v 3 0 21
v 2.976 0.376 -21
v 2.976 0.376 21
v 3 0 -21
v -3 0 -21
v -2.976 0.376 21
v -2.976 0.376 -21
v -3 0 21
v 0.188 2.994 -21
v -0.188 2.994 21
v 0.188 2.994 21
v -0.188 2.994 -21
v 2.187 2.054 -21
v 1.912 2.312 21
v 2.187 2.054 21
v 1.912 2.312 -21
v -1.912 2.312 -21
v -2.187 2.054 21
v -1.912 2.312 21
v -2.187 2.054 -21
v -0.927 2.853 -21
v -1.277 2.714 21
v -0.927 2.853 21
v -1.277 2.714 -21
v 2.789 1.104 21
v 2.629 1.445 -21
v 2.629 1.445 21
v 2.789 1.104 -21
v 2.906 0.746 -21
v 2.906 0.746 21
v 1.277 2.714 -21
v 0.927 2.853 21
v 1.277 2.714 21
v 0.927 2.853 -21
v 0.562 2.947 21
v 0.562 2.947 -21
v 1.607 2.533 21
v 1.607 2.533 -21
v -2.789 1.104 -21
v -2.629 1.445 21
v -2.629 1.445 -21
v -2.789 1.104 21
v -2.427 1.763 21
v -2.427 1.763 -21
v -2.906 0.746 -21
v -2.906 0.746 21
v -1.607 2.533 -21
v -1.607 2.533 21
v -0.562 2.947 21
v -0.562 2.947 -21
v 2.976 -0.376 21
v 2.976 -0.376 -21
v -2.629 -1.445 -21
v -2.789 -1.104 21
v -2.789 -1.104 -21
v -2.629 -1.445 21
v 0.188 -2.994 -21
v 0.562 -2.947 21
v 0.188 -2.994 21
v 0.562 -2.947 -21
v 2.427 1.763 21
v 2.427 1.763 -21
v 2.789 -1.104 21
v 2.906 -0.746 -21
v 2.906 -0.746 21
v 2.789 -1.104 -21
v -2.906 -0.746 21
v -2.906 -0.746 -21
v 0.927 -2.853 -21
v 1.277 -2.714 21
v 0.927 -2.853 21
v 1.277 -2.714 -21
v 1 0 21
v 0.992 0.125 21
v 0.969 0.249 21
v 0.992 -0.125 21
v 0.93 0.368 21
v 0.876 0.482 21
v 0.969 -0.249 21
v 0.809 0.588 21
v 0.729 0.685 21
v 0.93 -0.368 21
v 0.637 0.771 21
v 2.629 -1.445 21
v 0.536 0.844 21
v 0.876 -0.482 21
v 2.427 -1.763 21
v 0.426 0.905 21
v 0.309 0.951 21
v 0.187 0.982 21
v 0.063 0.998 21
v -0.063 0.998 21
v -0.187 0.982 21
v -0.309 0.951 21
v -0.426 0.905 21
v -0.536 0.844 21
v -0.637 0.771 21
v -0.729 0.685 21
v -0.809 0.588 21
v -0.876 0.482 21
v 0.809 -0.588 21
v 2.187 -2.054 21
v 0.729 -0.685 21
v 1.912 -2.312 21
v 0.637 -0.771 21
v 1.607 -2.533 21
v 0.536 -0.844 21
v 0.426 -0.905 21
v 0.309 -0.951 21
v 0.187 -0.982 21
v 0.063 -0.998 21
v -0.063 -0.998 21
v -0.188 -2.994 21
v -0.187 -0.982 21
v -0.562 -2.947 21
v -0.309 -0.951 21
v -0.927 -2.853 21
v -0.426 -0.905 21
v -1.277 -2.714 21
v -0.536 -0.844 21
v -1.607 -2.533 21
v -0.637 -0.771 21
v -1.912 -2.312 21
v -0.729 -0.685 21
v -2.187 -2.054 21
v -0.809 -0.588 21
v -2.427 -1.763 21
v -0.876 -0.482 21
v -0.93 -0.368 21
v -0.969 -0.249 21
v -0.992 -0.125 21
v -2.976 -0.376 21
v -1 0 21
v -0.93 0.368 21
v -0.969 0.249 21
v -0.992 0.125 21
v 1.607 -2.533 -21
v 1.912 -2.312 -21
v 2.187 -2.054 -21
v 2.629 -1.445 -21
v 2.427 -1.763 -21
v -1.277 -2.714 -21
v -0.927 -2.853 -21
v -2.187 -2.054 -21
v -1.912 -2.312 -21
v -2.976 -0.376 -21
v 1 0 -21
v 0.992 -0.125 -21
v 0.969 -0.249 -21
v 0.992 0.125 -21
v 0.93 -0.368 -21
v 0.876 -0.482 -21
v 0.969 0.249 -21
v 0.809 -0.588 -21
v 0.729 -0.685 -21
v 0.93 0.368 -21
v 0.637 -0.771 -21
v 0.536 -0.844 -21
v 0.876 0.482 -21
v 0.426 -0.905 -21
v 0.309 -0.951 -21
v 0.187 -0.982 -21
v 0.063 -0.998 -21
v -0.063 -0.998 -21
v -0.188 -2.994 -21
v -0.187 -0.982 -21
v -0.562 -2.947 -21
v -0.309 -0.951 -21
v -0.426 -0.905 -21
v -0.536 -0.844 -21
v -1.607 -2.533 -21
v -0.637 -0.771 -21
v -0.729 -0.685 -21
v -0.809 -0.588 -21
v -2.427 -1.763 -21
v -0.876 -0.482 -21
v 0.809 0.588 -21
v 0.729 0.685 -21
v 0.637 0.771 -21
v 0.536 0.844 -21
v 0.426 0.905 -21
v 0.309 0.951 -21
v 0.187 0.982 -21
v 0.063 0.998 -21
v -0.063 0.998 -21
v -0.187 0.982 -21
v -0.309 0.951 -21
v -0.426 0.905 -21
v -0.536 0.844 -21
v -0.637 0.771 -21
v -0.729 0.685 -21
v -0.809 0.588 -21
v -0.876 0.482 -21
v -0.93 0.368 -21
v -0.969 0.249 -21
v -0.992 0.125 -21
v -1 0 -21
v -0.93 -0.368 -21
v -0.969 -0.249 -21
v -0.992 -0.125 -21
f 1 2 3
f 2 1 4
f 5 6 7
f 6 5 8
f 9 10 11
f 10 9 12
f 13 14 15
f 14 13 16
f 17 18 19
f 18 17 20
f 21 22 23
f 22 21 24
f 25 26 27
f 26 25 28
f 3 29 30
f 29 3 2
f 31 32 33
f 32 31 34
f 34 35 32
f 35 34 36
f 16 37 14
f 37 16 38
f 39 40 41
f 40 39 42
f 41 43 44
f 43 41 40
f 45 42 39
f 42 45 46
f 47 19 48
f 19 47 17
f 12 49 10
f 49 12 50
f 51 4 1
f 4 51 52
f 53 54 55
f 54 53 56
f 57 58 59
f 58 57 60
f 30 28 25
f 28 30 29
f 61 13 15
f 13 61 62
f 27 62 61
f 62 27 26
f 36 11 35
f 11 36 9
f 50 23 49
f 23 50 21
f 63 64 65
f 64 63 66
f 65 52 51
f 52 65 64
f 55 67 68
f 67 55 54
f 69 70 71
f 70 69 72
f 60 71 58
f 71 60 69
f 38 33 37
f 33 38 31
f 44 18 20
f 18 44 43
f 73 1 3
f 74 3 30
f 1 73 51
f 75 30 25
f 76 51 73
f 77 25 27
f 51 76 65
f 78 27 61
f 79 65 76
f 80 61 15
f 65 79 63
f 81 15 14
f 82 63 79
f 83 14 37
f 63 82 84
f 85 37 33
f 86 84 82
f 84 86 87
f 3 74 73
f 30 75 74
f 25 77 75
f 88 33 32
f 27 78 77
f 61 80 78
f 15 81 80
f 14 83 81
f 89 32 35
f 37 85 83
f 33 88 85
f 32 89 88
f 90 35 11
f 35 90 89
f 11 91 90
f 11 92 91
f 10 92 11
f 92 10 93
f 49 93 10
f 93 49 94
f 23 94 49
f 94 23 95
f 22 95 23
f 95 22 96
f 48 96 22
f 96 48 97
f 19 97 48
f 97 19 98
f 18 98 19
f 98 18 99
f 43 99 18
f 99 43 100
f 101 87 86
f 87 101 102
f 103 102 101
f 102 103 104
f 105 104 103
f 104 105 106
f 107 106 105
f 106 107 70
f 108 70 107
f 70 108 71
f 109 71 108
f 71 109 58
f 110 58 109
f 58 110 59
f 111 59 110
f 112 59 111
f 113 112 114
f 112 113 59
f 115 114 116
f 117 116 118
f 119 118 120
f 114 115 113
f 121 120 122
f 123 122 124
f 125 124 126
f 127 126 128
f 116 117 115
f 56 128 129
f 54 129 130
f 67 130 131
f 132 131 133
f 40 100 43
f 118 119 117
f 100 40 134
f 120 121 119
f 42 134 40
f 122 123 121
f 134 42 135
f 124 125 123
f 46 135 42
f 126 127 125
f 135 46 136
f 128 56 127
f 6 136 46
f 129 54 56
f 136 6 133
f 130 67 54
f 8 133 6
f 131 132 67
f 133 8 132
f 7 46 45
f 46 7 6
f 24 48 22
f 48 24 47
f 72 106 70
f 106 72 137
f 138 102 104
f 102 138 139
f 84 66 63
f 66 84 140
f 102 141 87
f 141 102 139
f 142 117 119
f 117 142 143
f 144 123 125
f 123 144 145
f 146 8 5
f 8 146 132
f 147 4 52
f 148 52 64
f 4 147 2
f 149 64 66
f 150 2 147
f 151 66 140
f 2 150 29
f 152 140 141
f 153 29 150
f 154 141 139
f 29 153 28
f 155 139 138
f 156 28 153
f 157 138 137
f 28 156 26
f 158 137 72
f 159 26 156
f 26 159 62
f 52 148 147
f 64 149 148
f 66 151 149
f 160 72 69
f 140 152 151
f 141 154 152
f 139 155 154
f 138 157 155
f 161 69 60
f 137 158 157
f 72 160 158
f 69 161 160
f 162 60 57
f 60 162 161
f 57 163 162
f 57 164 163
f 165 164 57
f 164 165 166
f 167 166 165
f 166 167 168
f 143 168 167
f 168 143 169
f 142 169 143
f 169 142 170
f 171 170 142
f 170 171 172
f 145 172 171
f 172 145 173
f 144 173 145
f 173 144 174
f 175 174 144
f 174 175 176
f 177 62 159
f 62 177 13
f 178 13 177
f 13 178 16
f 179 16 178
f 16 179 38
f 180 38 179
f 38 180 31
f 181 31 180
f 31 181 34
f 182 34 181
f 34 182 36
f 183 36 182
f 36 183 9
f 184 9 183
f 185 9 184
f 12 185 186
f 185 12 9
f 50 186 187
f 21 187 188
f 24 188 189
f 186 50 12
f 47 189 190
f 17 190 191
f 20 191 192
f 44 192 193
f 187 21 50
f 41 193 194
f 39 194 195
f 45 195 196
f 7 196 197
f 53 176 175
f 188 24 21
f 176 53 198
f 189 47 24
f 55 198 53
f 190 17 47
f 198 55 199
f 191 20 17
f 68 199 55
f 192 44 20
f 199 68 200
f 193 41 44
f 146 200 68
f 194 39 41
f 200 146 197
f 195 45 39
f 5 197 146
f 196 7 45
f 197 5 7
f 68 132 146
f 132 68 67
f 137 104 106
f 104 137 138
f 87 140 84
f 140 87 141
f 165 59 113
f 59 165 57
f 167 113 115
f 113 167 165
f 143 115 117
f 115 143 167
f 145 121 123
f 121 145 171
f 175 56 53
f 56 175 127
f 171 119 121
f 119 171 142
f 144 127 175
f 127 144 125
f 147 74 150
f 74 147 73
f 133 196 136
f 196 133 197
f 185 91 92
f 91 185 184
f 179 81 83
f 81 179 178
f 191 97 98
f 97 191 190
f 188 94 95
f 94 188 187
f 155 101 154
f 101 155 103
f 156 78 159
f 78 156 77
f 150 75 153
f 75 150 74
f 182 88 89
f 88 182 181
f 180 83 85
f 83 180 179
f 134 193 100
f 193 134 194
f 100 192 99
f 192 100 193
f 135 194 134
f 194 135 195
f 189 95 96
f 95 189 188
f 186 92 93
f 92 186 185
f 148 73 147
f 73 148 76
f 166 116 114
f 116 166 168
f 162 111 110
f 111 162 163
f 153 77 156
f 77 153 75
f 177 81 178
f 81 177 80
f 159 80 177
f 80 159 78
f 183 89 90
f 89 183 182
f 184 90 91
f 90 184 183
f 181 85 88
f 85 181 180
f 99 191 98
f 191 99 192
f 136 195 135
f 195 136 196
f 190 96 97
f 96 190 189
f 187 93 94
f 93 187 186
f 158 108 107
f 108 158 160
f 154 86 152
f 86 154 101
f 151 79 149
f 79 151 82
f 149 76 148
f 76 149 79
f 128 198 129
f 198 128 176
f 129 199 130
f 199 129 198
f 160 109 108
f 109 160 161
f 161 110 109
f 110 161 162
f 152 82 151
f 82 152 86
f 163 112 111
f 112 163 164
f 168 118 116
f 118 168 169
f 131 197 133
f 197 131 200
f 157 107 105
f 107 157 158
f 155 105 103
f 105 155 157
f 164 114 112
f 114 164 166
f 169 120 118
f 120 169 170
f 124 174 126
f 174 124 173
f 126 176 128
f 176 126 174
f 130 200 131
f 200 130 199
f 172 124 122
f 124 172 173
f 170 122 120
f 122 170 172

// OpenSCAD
$fn = 50;


difference() {
	union() {
		translate(v = [0, 0, -21.0000000000]) {
			cylinder(h = 42, r = 3.0000000000);
		}
	}
	union() {
		translate(v = [0, 0, -100.0000000000]) {
			cylinder(h = 200, r = 1.0000000000);
		}
	}
}
